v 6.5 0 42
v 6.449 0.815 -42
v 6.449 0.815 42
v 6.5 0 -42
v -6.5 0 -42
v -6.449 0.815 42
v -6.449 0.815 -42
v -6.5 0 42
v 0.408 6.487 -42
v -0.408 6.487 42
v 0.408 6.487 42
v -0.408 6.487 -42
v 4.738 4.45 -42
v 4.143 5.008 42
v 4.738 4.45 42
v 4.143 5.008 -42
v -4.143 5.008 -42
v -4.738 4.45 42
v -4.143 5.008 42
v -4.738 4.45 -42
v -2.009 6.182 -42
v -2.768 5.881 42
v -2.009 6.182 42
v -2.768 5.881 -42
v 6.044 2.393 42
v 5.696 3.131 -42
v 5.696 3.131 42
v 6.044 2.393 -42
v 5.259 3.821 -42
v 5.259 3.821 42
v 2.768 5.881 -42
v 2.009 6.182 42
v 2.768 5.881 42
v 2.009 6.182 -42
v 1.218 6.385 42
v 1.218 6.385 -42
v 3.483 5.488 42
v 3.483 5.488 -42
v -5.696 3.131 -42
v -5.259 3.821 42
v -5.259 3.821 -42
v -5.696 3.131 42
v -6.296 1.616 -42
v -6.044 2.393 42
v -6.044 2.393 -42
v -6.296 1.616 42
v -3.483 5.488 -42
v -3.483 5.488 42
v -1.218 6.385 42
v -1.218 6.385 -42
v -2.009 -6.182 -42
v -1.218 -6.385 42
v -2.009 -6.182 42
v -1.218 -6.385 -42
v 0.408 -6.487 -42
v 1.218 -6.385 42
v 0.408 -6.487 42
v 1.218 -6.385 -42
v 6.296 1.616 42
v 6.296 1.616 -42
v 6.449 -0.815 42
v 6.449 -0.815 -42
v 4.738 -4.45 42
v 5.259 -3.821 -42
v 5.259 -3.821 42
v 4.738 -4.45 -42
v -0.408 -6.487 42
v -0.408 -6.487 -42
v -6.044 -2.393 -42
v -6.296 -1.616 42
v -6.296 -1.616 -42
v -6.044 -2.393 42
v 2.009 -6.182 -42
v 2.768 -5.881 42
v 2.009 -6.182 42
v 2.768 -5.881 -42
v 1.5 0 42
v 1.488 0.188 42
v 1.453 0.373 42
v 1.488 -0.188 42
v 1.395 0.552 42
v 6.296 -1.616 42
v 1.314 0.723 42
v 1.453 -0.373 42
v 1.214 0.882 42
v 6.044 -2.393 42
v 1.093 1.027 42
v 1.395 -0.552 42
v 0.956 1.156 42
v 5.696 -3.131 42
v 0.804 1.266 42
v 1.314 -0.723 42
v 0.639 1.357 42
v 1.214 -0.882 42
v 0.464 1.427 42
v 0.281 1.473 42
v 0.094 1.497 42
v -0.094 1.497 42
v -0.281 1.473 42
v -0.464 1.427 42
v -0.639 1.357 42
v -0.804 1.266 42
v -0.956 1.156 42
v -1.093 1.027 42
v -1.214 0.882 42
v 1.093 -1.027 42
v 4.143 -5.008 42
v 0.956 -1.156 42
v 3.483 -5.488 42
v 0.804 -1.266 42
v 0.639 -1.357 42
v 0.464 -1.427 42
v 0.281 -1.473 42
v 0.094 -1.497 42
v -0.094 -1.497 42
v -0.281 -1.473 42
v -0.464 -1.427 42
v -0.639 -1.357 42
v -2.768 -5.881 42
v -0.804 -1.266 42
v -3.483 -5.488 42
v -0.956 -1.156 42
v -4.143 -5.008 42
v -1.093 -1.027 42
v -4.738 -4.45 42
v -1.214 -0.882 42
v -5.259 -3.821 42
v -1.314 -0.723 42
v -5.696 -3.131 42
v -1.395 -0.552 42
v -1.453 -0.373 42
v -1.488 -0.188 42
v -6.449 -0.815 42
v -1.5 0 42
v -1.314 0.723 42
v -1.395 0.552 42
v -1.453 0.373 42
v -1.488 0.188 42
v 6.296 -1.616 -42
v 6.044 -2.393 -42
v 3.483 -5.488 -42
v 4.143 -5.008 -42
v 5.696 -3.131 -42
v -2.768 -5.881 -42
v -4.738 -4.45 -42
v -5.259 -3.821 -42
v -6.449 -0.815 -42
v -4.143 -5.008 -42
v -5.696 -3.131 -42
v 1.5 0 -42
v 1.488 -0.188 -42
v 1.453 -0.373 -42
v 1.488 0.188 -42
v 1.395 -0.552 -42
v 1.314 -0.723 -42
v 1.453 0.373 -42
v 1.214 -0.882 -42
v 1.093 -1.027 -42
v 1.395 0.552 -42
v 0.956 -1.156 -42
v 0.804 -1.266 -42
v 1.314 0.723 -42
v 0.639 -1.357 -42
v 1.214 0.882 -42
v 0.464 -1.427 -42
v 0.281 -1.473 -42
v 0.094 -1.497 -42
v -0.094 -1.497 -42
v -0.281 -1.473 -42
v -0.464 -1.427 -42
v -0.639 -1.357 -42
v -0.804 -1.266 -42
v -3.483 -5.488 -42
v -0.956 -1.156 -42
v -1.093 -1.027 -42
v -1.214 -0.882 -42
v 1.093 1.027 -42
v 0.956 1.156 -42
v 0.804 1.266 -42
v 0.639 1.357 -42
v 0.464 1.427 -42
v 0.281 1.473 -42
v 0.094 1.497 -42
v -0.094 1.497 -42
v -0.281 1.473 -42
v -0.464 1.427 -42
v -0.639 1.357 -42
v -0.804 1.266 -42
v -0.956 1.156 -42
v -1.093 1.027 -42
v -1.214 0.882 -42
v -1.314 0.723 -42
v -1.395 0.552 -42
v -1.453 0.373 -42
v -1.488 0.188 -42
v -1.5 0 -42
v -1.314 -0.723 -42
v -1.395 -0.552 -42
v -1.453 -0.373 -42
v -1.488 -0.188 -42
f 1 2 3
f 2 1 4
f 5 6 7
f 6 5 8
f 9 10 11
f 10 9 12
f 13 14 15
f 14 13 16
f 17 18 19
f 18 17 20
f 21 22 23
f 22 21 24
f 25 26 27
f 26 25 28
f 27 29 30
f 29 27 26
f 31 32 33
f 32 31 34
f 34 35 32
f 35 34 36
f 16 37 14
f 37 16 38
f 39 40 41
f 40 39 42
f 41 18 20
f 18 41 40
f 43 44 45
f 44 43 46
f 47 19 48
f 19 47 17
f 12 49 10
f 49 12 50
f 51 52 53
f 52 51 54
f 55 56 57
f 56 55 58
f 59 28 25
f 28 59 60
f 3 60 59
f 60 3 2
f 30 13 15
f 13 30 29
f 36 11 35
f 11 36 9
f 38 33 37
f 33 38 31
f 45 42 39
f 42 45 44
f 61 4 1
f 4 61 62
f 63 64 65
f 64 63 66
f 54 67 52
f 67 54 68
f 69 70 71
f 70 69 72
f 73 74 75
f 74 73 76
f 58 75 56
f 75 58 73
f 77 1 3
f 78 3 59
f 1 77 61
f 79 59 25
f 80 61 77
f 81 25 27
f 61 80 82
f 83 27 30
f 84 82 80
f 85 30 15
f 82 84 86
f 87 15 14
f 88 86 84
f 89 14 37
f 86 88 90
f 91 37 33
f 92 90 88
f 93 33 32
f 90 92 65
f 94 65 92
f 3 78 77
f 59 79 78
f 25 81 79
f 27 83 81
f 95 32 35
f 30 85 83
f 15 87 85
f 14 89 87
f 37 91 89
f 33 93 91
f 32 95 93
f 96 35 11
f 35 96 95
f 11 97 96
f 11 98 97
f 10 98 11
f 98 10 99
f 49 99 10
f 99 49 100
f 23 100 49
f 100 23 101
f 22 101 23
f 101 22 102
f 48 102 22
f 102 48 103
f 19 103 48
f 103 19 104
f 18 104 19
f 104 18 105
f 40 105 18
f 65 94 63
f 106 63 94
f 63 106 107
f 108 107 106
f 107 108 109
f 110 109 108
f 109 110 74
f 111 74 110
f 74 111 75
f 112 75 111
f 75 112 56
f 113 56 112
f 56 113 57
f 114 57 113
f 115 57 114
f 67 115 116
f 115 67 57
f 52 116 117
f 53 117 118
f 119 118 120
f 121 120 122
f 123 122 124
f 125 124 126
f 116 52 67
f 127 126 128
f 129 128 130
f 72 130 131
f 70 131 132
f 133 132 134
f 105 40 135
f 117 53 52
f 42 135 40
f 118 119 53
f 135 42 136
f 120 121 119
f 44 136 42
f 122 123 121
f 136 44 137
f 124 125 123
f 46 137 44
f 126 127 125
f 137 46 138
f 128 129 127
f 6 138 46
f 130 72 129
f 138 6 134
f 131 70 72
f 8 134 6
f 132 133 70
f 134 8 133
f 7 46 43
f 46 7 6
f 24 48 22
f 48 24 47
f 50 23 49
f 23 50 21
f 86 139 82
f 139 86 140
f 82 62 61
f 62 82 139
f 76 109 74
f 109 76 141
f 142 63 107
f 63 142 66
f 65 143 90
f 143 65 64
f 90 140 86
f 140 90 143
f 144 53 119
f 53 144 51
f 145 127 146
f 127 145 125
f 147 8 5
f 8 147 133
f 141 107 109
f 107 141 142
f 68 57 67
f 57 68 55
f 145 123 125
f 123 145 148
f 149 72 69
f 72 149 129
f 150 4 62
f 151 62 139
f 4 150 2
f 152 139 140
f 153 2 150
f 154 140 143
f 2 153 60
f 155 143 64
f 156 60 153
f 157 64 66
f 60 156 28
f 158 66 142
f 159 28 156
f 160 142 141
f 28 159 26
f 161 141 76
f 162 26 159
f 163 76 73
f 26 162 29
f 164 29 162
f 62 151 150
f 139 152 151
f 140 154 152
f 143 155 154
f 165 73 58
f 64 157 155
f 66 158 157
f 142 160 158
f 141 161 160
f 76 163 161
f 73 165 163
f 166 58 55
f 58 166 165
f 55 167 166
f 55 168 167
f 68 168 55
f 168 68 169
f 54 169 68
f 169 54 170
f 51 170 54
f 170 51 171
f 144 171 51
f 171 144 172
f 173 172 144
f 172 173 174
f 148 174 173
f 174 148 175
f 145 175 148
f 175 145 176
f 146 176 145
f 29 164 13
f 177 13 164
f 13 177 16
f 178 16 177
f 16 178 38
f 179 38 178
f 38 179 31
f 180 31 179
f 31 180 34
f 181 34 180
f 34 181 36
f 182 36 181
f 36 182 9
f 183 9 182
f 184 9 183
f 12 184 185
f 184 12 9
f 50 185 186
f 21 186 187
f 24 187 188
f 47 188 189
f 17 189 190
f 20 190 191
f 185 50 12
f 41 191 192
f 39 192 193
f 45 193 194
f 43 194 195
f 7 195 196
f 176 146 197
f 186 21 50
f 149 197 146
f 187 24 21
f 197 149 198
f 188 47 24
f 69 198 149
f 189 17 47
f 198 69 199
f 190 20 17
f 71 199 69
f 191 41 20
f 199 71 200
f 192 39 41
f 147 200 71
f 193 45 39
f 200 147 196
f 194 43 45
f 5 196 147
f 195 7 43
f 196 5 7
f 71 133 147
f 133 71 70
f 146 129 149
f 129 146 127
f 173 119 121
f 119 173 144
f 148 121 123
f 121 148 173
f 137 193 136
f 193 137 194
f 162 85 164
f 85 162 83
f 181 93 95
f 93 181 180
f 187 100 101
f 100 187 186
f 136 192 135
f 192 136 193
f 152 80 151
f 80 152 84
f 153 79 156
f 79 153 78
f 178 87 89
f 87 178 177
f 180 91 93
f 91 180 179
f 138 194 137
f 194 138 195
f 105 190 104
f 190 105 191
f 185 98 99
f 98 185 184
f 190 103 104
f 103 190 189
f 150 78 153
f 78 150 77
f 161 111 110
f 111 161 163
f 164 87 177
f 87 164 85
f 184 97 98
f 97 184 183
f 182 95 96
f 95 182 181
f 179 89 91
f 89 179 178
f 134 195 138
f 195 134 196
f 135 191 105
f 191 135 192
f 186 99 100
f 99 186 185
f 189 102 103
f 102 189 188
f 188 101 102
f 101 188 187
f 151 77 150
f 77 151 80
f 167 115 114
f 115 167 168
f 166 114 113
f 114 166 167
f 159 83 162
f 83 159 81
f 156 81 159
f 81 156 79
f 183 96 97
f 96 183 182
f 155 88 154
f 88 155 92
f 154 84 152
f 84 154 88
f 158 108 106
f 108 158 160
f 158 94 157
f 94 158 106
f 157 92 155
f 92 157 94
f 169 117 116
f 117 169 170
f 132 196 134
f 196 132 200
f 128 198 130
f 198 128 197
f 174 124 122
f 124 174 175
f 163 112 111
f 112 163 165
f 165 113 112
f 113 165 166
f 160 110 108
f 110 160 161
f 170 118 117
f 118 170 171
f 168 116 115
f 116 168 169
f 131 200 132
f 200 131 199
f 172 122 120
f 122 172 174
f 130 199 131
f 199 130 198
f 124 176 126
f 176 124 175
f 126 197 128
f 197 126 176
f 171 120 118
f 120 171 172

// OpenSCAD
$fn = 50;


difference() {
	union() {
		translate(v = [0, 0, -42.0000000000]) {
			cylinder(h = 84, r = 6.5000000000);
		}
	}
	union() {
		translate(v = [0, 0, -100.0000000000]) {
			cylinder(h = 200, r = 1.5000000000);
		}
	}
}
